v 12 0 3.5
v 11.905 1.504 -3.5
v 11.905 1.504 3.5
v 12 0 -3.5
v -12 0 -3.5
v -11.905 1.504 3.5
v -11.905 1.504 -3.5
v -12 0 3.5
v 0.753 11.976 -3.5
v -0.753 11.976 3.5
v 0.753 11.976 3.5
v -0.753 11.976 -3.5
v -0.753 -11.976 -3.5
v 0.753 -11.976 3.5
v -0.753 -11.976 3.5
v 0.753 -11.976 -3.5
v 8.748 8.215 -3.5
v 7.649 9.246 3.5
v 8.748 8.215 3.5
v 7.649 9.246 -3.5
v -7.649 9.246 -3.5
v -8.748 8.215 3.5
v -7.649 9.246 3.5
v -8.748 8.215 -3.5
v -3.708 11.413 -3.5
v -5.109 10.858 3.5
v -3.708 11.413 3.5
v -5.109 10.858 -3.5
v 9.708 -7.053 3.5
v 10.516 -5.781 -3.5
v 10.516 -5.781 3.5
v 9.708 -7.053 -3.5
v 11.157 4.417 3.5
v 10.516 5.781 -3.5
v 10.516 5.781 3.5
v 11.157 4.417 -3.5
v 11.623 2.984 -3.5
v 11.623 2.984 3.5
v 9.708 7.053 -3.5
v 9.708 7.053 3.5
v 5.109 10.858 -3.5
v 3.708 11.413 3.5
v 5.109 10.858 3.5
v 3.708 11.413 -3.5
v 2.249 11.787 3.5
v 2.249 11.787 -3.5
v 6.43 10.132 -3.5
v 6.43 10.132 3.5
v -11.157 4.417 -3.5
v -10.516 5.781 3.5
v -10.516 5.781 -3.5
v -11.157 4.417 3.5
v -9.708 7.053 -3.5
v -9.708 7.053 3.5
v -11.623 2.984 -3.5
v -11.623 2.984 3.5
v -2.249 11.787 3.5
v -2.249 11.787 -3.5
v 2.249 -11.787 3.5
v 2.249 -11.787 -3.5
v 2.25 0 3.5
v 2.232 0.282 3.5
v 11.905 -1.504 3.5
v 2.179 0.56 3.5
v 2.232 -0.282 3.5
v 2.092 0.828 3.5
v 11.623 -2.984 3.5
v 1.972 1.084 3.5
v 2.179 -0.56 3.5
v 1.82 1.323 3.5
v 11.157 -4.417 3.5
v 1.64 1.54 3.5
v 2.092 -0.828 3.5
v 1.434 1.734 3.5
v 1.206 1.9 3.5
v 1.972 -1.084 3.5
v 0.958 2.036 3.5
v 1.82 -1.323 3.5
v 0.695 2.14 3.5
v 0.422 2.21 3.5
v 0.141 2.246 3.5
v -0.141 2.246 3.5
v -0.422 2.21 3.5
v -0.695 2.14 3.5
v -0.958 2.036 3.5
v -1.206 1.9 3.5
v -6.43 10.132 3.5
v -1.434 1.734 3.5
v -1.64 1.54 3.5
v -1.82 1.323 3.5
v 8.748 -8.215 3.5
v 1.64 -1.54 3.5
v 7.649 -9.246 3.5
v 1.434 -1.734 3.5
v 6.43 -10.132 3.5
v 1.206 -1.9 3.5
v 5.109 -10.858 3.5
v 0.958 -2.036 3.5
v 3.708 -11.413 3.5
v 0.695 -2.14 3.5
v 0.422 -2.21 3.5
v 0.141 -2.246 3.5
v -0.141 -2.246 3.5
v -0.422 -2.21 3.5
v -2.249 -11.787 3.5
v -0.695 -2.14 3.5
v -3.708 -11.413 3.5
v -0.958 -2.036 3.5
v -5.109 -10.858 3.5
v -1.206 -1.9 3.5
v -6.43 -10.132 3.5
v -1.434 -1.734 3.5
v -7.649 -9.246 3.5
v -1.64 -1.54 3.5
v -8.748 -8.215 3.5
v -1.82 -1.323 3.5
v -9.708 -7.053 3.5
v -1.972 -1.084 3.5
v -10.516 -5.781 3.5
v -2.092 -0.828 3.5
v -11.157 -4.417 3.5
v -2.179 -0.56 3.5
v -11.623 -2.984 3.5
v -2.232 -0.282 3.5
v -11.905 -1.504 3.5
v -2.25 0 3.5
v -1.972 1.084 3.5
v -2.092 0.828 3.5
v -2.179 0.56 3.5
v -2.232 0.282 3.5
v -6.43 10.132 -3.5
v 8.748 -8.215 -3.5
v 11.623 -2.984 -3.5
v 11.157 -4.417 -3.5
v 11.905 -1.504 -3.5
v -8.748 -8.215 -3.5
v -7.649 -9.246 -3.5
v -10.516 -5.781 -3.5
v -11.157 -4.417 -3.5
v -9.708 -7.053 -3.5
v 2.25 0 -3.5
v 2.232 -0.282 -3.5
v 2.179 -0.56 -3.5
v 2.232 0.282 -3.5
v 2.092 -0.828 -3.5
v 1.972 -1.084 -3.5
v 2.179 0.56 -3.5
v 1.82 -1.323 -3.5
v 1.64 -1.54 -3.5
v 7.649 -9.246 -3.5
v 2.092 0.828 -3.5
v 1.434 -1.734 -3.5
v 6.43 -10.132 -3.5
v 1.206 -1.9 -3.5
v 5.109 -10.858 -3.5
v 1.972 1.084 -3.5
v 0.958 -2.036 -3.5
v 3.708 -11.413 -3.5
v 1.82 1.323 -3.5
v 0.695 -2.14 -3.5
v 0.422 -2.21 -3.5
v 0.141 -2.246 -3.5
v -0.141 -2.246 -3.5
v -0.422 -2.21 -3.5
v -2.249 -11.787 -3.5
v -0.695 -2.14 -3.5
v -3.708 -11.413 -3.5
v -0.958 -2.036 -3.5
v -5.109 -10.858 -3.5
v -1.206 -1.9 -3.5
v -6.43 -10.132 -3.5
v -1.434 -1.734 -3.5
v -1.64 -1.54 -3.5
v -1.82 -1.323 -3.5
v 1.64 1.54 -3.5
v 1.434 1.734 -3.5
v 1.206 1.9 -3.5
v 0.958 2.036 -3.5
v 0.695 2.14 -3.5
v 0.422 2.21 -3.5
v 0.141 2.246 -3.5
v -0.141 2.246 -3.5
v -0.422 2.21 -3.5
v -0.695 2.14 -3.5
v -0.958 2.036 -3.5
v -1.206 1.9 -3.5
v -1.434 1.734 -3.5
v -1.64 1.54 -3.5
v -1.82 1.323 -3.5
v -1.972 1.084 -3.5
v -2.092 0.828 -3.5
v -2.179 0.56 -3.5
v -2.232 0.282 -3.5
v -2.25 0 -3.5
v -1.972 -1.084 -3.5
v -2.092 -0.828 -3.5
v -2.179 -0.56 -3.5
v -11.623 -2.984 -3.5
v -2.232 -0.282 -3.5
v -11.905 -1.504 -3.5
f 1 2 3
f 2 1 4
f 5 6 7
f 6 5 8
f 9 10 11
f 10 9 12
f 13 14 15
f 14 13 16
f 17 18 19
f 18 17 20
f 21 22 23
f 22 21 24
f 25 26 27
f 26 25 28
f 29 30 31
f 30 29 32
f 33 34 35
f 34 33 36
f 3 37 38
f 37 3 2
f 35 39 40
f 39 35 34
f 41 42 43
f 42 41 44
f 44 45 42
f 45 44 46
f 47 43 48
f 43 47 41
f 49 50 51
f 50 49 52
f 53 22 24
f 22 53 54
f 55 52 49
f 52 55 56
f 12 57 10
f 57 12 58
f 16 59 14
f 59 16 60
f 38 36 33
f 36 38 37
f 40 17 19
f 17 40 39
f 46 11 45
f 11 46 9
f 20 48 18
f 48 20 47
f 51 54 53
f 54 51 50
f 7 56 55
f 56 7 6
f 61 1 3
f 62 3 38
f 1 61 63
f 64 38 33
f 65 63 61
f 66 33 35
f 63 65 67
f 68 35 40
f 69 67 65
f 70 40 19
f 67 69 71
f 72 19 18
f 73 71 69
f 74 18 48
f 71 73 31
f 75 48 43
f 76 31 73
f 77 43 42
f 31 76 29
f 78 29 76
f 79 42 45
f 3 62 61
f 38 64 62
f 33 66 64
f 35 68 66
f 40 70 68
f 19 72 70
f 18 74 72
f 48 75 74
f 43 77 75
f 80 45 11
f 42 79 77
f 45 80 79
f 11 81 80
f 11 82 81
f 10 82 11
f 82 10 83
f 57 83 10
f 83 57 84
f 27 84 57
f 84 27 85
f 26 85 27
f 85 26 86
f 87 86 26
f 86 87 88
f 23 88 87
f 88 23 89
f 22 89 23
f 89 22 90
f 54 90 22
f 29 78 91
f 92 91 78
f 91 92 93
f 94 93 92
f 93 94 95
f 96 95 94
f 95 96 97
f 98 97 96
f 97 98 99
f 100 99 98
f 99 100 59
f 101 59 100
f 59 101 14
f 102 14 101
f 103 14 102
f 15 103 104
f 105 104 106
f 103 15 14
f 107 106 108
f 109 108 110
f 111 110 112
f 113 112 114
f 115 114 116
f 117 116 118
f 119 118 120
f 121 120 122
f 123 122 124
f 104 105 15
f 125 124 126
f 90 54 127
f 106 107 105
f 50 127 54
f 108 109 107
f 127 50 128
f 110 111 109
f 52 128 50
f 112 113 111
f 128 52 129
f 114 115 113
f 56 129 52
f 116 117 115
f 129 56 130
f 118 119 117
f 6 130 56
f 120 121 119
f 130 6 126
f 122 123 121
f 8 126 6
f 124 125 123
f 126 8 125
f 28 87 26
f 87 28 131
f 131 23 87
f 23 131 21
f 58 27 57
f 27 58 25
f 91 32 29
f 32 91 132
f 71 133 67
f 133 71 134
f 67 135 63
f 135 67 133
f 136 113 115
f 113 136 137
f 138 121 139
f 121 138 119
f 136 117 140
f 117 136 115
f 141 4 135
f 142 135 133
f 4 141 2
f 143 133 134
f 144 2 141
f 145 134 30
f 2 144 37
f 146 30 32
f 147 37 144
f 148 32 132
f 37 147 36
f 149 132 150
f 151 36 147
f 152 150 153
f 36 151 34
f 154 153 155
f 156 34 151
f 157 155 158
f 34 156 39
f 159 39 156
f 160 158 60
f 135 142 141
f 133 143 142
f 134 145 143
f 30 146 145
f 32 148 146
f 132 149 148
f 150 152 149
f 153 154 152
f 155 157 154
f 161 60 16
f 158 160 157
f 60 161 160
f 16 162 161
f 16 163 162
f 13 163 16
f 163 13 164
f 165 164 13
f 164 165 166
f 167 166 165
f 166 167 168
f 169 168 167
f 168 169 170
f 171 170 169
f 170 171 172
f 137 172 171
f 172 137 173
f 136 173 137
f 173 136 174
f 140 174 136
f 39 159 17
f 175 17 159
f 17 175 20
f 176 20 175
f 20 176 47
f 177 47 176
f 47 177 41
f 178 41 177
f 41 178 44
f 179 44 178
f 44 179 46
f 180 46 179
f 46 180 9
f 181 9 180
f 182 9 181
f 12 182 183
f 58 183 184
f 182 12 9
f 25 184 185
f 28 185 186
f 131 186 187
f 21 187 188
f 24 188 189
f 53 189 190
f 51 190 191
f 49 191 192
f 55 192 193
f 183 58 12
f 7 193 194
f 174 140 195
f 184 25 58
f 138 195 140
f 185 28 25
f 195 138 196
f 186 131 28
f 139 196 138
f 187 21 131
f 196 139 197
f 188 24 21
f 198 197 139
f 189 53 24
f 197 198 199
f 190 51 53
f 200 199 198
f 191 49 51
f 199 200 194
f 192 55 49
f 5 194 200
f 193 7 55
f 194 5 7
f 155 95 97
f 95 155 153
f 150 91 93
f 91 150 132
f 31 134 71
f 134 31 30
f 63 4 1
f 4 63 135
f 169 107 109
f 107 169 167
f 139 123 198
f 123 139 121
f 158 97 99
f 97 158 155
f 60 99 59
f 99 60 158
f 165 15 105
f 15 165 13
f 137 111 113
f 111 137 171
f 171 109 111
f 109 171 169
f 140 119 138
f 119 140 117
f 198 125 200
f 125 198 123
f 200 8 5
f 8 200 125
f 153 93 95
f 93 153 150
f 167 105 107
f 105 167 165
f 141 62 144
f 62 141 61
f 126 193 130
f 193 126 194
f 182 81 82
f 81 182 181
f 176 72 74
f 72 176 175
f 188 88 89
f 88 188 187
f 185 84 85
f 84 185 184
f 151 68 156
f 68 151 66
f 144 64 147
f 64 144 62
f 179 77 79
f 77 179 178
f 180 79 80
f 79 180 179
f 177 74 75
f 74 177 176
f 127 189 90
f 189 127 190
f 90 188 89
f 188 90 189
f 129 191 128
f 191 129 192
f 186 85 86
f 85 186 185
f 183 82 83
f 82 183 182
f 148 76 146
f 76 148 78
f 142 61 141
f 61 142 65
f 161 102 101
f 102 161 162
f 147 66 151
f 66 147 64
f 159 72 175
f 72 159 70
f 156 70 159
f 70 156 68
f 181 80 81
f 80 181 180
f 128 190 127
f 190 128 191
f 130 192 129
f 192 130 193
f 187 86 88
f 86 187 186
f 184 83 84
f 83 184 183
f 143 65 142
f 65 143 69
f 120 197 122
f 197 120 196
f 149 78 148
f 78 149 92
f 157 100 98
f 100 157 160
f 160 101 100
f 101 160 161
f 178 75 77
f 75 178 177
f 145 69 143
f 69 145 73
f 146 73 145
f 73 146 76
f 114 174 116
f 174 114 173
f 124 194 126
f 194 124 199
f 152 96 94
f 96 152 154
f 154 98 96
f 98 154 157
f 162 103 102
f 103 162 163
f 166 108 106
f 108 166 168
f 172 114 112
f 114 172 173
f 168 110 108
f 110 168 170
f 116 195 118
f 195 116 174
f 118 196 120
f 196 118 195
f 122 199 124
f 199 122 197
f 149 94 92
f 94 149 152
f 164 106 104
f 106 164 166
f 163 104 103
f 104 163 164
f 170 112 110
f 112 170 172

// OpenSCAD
$fn = 50;


difference() {
	union() {
		translate(v = [0, 0, -3.5000000000]) {
			cylinder(h = 7, r = 12.0000000000);
		}
	}
	union() {
		translate(v = [0, 0, -100.0000000000]) {
			cylinder(h = 200, r = 2.2500000000);
		}
	}
}
